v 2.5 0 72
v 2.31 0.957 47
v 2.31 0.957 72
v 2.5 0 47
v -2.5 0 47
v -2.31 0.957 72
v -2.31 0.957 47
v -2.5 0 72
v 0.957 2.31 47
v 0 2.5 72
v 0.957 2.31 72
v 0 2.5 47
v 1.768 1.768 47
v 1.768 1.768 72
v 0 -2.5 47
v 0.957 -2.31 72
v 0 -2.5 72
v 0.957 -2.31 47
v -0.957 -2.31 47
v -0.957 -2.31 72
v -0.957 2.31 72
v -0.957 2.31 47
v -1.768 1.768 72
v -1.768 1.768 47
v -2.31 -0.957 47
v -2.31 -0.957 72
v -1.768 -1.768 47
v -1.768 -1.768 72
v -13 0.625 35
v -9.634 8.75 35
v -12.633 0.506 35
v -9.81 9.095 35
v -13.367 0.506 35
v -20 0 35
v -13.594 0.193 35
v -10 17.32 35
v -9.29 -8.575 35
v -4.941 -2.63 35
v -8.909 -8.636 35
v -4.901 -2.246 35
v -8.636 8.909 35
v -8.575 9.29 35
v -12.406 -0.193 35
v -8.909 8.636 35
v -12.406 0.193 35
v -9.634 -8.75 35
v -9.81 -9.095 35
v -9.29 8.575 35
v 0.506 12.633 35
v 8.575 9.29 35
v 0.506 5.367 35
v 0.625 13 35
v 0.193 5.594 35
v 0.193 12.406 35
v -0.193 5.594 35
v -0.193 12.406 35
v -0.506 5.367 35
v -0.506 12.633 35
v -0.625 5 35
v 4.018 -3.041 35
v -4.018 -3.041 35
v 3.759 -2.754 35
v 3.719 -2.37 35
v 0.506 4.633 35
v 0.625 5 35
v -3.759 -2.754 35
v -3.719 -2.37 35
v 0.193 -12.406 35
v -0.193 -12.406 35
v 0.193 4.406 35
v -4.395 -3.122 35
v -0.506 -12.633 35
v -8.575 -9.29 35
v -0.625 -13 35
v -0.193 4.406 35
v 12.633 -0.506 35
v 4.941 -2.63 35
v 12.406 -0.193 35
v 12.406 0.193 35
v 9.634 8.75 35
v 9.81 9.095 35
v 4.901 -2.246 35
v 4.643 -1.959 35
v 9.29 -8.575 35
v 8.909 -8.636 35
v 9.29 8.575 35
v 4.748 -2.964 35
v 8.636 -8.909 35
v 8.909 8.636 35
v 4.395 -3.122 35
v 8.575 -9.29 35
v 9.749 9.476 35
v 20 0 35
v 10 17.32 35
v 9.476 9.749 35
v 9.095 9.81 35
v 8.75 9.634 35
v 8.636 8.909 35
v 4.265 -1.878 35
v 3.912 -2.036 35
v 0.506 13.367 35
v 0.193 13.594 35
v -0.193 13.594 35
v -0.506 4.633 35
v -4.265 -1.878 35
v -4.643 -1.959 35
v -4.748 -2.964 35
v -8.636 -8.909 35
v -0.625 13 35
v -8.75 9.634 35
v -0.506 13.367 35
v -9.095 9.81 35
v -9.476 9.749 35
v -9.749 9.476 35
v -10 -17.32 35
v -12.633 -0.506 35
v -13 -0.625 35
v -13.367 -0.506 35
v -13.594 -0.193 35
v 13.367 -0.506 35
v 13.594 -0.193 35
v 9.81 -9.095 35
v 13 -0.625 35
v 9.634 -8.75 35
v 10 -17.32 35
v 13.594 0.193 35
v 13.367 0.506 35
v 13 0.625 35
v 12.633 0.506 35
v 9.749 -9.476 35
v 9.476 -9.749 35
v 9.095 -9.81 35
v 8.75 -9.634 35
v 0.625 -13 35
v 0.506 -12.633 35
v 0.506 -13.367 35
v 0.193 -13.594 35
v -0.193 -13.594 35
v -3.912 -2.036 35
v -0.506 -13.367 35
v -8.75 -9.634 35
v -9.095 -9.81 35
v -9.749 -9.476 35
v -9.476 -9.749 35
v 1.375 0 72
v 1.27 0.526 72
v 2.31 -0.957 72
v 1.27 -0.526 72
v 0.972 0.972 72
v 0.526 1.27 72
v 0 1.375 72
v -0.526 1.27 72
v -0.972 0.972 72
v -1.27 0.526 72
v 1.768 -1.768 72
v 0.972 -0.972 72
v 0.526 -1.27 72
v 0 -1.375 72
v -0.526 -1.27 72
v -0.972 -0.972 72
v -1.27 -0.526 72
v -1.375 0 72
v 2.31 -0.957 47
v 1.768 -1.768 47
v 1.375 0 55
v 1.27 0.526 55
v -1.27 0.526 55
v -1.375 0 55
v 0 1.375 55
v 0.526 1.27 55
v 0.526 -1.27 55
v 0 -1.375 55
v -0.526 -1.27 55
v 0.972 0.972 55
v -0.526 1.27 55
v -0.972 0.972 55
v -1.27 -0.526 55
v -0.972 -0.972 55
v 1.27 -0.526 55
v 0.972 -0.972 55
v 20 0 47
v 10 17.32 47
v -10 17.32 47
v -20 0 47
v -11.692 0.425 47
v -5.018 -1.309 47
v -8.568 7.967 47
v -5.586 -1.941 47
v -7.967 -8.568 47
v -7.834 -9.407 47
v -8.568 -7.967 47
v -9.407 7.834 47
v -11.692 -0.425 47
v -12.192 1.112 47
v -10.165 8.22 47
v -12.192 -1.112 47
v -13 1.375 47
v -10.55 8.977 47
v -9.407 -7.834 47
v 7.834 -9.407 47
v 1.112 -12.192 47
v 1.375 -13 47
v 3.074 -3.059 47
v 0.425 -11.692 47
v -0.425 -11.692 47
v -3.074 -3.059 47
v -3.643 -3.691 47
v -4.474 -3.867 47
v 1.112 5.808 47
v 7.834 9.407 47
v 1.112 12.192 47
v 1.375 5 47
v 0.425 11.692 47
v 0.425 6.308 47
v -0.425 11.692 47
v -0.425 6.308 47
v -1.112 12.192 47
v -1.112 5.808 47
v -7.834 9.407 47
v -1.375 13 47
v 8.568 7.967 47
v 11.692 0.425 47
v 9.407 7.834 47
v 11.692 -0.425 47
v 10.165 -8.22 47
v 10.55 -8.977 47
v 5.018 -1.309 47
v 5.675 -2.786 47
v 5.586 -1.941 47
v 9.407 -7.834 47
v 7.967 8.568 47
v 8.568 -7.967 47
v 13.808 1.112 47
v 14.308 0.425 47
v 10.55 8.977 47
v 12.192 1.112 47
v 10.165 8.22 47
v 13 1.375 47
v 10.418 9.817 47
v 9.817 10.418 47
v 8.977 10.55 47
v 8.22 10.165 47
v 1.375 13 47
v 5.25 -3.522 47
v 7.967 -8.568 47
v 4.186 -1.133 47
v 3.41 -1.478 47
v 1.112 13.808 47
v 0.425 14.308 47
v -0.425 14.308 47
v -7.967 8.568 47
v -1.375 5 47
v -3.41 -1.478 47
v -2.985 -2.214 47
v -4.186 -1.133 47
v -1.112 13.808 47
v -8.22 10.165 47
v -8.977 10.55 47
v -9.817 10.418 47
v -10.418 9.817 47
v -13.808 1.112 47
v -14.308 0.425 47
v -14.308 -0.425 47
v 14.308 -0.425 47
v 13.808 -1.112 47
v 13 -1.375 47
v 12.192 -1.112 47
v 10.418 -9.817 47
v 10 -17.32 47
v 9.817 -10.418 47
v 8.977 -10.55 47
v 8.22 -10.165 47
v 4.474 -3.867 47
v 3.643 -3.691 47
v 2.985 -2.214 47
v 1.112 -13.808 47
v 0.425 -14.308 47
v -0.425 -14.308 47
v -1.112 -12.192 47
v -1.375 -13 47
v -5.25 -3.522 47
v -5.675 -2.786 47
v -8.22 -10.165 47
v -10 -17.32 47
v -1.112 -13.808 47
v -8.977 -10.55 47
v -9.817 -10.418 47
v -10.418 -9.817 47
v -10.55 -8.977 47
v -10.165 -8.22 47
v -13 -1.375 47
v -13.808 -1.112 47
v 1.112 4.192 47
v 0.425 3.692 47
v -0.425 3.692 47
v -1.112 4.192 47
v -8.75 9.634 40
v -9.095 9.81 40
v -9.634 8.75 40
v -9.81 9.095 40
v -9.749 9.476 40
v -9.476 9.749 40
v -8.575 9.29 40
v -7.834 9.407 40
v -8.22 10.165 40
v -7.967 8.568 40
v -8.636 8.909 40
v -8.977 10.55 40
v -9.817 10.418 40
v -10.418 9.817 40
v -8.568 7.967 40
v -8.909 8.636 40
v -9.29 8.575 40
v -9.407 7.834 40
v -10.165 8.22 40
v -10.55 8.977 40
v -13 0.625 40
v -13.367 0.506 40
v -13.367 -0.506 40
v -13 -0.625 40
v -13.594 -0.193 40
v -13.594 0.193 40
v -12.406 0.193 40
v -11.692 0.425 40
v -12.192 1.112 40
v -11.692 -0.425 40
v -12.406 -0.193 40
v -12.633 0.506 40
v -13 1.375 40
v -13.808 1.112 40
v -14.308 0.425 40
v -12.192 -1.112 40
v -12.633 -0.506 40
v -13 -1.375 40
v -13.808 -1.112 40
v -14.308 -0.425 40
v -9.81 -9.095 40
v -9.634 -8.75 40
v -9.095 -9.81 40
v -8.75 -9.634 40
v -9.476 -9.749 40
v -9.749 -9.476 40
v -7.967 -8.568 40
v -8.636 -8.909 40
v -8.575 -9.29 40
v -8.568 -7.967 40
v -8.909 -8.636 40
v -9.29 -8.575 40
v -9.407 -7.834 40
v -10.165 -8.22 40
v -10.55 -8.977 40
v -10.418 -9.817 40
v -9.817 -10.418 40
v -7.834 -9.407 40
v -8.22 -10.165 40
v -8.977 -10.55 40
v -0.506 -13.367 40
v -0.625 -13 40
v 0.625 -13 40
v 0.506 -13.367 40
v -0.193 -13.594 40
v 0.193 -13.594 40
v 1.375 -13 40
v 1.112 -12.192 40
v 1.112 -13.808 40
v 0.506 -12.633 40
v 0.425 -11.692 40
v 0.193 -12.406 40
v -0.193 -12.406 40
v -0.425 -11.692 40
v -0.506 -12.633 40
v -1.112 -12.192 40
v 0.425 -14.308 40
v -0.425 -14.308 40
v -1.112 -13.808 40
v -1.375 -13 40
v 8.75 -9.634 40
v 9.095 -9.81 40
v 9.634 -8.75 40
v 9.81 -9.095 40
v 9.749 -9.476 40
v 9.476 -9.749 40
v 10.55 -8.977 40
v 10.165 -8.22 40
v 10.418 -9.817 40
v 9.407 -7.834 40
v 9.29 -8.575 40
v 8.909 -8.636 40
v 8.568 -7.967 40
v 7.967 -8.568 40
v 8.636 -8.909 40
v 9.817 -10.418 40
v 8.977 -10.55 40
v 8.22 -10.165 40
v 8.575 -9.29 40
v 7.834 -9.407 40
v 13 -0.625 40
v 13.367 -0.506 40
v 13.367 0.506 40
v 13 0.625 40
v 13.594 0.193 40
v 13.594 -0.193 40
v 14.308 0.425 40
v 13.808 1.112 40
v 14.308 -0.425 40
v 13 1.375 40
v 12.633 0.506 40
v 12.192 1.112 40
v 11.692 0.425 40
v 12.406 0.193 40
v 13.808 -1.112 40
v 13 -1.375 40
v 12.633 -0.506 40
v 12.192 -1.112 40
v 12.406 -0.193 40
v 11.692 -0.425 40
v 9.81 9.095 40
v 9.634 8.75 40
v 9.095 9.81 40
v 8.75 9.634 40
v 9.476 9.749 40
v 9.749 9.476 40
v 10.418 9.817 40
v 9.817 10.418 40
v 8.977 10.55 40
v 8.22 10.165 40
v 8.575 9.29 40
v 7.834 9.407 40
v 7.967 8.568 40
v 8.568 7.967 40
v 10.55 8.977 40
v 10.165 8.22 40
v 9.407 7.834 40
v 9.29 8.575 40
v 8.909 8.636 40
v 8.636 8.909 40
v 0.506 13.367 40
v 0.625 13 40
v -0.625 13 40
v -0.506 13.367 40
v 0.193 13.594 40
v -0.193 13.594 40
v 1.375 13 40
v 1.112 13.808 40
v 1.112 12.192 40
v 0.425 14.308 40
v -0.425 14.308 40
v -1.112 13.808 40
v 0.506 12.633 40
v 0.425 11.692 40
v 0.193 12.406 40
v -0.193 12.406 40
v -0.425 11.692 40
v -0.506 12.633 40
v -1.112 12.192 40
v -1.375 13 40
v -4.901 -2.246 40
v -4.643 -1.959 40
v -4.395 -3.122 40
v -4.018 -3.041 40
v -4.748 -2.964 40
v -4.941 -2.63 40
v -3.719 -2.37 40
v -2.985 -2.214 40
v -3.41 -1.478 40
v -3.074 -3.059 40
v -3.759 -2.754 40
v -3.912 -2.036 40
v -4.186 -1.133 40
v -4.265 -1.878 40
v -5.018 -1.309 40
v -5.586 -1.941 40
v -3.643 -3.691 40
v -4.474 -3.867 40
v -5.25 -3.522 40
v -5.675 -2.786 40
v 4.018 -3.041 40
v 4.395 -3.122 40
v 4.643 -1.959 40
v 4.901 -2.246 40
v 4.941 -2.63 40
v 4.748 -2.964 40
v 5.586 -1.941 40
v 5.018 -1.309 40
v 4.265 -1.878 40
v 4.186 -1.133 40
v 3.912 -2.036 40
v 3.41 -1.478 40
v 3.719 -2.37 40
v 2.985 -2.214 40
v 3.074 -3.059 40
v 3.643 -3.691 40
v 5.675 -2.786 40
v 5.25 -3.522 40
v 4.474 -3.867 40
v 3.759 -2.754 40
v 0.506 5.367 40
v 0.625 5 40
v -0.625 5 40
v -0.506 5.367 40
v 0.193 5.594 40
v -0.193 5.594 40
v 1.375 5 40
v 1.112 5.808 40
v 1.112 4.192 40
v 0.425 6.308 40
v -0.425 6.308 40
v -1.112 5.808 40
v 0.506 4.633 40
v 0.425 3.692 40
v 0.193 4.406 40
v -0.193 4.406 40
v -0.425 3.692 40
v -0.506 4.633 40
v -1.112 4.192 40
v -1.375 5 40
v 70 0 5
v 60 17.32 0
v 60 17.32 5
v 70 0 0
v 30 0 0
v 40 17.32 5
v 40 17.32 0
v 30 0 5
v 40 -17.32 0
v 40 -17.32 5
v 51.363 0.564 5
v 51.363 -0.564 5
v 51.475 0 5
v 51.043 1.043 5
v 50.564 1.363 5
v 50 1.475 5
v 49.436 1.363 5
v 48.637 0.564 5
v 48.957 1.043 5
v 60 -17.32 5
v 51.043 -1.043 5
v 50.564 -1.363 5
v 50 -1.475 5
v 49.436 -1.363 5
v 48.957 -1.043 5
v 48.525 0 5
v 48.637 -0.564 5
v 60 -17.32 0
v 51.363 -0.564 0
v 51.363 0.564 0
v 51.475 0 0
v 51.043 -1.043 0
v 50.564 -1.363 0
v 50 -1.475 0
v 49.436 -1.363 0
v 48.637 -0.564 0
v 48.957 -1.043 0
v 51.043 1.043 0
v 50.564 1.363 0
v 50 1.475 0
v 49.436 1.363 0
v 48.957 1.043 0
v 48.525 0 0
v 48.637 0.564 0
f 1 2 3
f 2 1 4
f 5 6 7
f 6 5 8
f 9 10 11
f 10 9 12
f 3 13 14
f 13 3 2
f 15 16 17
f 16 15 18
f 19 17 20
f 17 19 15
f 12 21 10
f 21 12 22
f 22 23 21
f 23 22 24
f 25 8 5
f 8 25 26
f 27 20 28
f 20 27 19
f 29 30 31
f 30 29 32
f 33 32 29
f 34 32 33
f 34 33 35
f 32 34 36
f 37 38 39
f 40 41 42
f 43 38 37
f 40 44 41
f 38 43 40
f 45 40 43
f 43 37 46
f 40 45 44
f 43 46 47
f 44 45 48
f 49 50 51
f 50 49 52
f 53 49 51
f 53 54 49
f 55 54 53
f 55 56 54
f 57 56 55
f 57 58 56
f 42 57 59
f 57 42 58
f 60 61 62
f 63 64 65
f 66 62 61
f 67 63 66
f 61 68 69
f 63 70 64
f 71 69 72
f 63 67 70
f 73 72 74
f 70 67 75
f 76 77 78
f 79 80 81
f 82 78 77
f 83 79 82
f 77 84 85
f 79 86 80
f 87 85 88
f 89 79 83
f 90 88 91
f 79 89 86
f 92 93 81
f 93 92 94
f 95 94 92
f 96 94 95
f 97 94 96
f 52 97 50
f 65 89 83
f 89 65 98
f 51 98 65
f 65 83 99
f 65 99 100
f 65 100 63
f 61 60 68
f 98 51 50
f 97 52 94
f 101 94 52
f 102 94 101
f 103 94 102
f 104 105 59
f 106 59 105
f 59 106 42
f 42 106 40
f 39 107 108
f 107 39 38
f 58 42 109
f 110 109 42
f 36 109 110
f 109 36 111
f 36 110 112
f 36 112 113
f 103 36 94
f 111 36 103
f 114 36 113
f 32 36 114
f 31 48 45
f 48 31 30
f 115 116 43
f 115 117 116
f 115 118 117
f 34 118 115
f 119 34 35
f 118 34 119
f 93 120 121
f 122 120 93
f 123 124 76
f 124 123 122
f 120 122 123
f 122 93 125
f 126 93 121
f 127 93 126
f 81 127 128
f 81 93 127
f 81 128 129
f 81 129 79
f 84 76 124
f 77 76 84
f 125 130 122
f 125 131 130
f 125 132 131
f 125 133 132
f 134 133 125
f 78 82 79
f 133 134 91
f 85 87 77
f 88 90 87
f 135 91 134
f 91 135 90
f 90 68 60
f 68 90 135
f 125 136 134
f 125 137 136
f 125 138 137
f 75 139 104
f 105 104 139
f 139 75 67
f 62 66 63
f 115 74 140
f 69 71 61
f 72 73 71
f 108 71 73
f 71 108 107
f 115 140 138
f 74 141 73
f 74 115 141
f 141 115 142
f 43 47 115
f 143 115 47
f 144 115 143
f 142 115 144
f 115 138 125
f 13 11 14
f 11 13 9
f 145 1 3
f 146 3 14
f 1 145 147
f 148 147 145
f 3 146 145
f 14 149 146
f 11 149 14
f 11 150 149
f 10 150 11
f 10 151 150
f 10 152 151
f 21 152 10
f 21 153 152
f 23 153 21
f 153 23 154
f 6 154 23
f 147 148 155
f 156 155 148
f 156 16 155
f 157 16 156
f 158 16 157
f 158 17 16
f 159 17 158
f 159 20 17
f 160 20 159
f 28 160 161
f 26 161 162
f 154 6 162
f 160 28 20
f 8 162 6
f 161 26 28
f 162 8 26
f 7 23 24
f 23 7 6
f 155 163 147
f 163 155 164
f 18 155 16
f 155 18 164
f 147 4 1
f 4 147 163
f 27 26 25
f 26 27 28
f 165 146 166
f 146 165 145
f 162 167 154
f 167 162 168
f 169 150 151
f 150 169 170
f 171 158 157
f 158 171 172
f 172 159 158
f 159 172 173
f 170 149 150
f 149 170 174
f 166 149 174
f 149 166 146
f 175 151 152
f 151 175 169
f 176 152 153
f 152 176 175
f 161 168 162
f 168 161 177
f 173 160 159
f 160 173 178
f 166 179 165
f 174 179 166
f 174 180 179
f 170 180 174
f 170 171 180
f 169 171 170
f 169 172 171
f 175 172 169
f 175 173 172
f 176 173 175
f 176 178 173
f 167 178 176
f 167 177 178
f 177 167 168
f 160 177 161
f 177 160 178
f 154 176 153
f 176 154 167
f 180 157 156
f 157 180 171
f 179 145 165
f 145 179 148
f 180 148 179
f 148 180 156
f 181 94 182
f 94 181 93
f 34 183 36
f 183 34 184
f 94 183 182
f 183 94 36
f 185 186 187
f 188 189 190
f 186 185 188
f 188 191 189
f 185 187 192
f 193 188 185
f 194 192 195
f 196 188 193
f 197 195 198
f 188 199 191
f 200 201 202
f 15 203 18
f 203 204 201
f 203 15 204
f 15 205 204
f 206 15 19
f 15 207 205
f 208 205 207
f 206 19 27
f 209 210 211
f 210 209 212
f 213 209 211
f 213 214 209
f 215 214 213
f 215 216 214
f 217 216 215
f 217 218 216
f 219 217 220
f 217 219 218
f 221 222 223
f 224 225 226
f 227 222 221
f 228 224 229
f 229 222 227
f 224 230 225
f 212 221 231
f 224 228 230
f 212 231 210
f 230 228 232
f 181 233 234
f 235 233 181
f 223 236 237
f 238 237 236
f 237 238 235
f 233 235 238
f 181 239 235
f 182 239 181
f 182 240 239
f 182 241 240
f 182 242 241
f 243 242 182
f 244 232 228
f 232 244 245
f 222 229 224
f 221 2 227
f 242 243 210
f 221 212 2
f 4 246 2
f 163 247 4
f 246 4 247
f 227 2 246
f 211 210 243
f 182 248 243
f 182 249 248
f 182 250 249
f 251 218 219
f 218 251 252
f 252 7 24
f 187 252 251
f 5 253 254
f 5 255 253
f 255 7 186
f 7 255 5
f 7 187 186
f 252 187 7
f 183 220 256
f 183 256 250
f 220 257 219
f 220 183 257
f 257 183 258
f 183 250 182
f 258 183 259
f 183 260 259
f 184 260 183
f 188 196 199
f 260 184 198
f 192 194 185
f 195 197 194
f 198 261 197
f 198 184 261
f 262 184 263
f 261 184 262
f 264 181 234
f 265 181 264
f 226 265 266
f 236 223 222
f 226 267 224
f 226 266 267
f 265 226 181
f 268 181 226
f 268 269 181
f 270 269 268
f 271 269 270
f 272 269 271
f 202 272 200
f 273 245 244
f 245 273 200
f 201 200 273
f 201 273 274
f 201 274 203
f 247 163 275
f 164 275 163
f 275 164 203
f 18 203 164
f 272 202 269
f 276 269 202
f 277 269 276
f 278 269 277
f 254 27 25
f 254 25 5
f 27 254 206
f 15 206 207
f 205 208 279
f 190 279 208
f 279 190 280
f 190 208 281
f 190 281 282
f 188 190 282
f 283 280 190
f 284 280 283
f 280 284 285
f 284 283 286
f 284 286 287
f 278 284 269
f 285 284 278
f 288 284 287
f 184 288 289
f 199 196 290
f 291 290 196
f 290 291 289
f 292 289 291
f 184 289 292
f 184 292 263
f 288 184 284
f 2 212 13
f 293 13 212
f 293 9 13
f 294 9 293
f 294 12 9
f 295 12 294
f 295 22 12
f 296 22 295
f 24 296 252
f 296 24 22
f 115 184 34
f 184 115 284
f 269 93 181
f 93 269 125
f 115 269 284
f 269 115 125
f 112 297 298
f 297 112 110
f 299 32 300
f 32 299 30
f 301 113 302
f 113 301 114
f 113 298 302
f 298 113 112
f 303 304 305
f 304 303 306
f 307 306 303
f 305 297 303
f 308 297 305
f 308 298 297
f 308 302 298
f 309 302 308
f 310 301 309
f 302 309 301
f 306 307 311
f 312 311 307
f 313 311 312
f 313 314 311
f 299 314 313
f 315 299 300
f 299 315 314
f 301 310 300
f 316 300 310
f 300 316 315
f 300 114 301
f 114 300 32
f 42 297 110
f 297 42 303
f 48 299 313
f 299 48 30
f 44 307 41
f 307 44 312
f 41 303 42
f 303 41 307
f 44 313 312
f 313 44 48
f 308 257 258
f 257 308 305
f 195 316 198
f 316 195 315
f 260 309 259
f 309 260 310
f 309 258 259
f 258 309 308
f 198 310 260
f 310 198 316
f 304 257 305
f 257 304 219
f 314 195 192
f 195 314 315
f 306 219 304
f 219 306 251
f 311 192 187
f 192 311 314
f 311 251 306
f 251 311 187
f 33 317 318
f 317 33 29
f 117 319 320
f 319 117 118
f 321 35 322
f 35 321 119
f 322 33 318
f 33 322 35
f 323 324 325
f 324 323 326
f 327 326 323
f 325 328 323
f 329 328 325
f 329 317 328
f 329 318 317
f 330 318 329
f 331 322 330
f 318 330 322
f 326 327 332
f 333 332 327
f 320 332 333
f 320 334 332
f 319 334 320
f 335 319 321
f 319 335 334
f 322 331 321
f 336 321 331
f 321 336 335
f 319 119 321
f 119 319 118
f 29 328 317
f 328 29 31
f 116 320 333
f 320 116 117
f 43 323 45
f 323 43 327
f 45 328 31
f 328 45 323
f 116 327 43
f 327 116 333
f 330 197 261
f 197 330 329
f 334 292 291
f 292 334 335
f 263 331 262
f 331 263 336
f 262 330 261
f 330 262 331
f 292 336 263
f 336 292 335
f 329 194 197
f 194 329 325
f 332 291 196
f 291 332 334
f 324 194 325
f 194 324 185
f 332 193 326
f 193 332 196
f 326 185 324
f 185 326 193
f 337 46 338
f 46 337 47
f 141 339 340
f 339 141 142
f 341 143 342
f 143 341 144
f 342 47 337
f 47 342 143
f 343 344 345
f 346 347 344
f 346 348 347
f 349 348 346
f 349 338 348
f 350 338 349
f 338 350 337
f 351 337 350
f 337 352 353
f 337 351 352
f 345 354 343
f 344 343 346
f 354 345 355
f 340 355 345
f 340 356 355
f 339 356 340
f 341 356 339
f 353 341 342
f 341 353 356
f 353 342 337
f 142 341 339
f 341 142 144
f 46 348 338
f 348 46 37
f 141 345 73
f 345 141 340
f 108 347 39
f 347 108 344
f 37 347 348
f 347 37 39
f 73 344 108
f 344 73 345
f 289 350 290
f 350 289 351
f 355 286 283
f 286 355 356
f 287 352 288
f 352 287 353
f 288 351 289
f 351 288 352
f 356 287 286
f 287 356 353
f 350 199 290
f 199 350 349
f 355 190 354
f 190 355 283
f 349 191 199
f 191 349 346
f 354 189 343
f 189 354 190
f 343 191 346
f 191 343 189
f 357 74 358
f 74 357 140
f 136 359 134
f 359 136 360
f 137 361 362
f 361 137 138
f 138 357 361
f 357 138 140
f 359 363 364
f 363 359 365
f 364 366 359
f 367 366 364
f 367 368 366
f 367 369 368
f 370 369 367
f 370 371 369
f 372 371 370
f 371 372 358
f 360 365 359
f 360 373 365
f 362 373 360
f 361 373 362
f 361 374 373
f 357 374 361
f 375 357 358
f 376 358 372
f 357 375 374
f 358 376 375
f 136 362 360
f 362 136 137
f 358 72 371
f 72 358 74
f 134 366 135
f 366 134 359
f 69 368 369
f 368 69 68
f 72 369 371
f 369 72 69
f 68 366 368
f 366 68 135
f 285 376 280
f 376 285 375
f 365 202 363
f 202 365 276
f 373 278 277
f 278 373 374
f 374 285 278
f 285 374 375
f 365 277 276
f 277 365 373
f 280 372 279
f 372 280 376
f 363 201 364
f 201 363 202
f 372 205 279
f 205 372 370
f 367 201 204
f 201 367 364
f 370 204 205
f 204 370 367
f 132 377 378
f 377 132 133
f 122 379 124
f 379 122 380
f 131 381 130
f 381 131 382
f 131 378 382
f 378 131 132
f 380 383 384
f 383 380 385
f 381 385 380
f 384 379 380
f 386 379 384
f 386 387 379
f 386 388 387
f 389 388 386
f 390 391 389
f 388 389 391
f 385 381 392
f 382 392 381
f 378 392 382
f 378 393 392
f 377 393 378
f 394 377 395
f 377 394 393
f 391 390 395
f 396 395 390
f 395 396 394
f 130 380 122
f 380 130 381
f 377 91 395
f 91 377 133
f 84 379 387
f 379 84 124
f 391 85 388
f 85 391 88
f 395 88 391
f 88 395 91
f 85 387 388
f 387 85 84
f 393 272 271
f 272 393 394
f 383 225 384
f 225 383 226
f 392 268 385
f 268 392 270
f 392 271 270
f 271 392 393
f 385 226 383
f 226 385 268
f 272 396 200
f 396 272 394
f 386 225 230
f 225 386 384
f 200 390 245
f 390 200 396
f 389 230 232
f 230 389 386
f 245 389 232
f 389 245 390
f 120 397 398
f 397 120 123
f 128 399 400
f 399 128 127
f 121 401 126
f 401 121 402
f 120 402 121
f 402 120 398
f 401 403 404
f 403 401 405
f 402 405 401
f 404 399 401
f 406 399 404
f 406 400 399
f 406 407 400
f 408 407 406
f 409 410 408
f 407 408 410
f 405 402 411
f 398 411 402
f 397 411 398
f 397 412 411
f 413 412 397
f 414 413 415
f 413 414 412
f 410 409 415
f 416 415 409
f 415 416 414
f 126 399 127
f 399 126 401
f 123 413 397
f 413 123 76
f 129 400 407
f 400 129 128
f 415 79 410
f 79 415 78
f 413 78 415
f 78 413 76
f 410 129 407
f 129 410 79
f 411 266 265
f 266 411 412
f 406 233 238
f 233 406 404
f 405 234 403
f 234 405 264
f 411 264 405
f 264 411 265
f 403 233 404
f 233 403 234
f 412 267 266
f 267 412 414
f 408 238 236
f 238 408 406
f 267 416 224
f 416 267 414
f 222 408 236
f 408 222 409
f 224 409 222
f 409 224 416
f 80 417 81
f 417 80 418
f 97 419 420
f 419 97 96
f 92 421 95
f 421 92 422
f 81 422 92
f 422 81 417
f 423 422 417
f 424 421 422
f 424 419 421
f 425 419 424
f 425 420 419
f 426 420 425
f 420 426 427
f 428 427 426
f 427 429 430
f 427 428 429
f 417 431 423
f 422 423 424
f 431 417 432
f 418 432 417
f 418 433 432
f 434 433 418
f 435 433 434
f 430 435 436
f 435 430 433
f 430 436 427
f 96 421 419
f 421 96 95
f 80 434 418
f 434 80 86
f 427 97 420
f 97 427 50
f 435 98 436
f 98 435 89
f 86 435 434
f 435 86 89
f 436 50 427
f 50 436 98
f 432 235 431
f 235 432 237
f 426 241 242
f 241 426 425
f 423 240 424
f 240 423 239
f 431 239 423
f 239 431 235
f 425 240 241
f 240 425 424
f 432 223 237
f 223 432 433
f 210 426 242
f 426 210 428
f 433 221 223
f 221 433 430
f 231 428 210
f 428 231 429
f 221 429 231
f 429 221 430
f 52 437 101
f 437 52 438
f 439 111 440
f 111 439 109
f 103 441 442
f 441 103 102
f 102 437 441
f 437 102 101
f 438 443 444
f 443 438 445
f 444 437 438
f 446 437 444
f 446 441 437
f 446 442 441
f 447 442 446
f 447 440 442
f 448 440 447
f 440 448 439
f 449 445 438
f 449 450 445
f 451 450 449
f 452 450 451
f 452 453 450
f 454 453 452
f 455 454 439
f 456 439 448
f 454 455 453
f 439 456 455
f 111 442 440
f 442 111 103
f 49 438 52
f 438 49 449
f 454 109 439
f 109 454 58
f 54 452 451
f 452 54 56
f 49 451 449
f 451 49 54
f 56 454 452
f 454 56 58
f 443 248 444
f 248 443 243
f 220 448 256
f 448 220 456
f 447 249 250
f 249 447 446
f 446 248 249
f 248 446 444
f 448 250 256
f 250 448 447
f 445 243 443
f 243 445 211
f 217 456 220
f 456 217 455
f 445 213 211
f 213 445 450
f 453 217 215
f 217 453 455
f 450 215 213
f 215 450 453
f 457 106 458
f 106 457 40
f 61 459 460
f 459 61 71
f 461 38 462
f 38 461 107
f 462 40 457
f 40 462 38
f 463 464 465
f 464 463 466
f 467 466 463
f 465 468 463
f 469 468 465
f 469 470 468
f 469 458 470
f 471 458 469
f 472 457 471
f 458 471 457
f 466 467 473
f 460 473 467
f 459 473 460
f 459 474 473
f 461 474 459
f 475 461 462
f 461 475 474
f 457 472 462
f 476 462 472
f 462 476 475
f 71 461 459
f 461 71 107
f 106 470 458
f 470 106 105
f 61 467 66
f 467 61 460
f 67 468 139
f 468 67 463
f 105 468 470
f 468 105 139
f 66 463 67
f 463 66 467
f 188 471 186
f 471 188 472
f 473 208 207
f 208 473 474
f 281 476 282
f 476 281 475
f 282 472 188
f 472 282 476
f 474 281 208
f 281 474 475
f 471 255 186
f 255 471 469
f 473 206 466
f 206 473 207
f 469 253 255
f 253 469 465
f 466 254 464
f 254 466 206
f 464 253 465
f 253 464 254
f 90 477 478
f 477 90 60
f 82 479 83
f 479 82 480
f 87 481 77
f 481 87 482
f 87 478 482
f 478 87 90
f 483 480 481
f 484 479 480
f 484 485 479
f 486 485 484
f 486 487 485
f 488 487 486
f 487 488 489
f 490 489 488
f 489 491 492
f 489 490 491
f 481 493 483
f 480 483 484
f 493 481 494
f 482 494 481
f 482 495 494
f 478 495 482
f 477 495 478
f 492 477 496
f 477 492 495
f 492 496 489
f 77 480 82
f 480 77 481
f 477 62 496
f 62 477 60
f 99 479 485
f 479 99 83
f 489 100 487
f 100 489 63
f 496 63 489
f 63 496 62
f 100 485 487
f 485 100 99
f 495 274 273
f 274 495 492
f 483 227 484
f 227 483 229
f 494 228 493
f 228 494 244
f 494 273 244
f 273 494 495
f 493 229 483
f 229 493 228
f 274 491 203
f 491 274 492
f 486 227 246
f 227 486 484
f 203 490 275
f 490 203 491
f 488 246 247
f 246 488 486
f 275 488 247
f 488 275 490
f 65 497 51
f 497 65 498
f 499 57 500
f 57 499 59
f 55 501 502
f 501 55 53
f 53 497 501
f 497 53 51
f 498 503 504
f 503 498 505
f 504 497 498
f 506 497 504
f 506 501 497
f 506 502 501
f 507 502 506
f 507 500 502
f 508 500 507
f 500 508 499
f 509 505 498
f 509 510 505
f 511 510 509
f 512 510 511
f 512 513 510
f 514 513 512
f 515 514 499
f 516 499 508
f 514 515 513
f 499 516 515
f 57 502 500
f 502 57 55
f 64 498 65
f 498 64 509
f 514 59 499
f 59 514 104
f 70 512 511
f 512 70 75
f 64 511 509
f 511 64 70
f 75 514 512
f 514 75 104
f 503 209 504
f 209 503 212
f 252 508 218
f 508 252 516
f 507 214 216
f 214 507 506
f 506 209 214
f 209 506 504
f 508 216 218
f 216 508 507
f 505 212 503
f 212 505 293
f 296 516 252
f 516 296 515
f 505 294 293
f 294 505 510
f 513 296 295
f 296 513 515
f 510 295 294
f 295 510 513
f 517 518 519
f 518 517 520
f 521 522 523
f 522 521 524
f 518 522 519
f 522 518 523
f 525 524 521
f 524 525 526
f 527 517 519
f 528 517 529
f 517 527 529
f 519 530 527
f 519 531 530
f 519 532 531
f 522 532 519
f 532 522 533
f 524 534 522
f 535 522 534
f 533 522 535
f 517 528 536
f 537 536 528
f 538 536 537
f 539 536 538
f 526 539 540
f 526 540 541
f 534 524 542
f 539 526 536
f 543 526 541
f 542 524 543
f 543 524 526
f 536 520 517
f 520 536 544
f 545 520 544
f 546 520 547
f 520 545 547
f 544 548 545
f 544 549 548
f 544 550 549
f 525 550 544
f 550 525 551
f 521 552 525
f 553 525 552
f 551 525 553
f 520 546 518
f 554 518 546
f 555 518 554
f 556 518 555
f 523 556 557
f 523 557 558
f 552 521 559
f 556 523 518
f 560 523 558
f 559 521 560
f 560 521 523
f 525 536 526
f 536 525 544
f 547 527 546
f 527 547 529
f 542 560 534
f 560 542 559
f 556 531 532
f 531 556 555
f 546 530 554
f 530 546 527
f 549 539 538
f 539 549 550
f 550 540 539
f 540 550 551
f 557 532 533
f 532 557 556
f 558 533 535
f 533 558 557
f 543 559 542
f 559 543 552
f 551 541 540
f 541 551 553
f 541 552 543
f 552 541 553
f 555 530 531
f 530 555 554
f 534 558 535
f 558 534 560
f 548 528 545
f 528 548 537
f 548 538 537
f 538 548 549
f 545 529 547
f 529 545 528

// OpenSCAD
module needle() {
  cylinder($fn=10, h=40, d=1.25); 
  translate([0, 0, 40])
  cylinder($fn=10, h=30, d=2.75);
}

module needles() {
  for(i = [1 : 8])
    rotate(i * 45)
      translate([0, 13])
        needle();

  for(i = [1 : 3])
    rotate(i * 120)
      translate([0, 5])
        needle();
}

difference() {

  translate([0, 0, 35])
  union() {
    cylinder($fn=6, h=12, d=40, center=false);
      
    // TODO: put a hole in here
    difference() {
      cylinder($fn=16, h=37, d=5, center=false);
      translate([0, 0, 20])
      cylinder($fn=16, h=50, d=2.75, center=false);
    }
  }

/*
  translate([0, 0, 69])
  cylinder($fn=6, h=50, d=35, center=false);
*/
    
  needles();
}

// lidy thingy
translate([50, 0, 0])
difference() {
  cylinder($fn=6, h=5, d=40, center=false);
  cylinder($fn=16, h=50, d=2.95, center=false);
}
